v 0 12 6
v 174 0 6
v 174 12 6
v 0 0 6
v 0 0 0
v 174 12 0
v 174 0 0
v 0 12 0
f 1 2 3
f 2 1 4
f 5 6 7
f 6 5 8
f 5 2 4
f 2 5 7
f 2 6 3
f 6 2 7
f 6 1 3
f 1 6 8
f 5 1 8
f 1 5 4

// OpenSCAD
// One glued rear-center stop for the three-tier R3.5 rack; units: mm.
// Print orientation lies flat on the bed: 174 x 12 x 6 mm.
// Install orientation is upright: 12 mm across rack, 6 mm rearward, 174 mm tall.
// Glue face rests against the back edge of the three rear crossbeams.
// This replaces the earlier per-tier press-fit bar proposal.

part = "print"; // print | installed

stop_length = 174;
stop_width = 12;
stop_depth = 6;

module rear_stop_print() {
    cube([stop_length,stop_width,stop_depth]);
}

// R3.5 inner frame: X = 0..182; its center is X = 91 mm.
// Rear crossbeams end at Y = 144 mm. Tier bottoms are Z = 0, 58, 116 mm.
module rear_stop_installed() {
    translate([91-stop_width/2,144,0])
        cube([stop_width,stop_depth,stop_length]);
}

if (part == "print") rear_stop_print();
else if (part == "installed") rear_stop_installed();
else assert(false,"Unknown part");
